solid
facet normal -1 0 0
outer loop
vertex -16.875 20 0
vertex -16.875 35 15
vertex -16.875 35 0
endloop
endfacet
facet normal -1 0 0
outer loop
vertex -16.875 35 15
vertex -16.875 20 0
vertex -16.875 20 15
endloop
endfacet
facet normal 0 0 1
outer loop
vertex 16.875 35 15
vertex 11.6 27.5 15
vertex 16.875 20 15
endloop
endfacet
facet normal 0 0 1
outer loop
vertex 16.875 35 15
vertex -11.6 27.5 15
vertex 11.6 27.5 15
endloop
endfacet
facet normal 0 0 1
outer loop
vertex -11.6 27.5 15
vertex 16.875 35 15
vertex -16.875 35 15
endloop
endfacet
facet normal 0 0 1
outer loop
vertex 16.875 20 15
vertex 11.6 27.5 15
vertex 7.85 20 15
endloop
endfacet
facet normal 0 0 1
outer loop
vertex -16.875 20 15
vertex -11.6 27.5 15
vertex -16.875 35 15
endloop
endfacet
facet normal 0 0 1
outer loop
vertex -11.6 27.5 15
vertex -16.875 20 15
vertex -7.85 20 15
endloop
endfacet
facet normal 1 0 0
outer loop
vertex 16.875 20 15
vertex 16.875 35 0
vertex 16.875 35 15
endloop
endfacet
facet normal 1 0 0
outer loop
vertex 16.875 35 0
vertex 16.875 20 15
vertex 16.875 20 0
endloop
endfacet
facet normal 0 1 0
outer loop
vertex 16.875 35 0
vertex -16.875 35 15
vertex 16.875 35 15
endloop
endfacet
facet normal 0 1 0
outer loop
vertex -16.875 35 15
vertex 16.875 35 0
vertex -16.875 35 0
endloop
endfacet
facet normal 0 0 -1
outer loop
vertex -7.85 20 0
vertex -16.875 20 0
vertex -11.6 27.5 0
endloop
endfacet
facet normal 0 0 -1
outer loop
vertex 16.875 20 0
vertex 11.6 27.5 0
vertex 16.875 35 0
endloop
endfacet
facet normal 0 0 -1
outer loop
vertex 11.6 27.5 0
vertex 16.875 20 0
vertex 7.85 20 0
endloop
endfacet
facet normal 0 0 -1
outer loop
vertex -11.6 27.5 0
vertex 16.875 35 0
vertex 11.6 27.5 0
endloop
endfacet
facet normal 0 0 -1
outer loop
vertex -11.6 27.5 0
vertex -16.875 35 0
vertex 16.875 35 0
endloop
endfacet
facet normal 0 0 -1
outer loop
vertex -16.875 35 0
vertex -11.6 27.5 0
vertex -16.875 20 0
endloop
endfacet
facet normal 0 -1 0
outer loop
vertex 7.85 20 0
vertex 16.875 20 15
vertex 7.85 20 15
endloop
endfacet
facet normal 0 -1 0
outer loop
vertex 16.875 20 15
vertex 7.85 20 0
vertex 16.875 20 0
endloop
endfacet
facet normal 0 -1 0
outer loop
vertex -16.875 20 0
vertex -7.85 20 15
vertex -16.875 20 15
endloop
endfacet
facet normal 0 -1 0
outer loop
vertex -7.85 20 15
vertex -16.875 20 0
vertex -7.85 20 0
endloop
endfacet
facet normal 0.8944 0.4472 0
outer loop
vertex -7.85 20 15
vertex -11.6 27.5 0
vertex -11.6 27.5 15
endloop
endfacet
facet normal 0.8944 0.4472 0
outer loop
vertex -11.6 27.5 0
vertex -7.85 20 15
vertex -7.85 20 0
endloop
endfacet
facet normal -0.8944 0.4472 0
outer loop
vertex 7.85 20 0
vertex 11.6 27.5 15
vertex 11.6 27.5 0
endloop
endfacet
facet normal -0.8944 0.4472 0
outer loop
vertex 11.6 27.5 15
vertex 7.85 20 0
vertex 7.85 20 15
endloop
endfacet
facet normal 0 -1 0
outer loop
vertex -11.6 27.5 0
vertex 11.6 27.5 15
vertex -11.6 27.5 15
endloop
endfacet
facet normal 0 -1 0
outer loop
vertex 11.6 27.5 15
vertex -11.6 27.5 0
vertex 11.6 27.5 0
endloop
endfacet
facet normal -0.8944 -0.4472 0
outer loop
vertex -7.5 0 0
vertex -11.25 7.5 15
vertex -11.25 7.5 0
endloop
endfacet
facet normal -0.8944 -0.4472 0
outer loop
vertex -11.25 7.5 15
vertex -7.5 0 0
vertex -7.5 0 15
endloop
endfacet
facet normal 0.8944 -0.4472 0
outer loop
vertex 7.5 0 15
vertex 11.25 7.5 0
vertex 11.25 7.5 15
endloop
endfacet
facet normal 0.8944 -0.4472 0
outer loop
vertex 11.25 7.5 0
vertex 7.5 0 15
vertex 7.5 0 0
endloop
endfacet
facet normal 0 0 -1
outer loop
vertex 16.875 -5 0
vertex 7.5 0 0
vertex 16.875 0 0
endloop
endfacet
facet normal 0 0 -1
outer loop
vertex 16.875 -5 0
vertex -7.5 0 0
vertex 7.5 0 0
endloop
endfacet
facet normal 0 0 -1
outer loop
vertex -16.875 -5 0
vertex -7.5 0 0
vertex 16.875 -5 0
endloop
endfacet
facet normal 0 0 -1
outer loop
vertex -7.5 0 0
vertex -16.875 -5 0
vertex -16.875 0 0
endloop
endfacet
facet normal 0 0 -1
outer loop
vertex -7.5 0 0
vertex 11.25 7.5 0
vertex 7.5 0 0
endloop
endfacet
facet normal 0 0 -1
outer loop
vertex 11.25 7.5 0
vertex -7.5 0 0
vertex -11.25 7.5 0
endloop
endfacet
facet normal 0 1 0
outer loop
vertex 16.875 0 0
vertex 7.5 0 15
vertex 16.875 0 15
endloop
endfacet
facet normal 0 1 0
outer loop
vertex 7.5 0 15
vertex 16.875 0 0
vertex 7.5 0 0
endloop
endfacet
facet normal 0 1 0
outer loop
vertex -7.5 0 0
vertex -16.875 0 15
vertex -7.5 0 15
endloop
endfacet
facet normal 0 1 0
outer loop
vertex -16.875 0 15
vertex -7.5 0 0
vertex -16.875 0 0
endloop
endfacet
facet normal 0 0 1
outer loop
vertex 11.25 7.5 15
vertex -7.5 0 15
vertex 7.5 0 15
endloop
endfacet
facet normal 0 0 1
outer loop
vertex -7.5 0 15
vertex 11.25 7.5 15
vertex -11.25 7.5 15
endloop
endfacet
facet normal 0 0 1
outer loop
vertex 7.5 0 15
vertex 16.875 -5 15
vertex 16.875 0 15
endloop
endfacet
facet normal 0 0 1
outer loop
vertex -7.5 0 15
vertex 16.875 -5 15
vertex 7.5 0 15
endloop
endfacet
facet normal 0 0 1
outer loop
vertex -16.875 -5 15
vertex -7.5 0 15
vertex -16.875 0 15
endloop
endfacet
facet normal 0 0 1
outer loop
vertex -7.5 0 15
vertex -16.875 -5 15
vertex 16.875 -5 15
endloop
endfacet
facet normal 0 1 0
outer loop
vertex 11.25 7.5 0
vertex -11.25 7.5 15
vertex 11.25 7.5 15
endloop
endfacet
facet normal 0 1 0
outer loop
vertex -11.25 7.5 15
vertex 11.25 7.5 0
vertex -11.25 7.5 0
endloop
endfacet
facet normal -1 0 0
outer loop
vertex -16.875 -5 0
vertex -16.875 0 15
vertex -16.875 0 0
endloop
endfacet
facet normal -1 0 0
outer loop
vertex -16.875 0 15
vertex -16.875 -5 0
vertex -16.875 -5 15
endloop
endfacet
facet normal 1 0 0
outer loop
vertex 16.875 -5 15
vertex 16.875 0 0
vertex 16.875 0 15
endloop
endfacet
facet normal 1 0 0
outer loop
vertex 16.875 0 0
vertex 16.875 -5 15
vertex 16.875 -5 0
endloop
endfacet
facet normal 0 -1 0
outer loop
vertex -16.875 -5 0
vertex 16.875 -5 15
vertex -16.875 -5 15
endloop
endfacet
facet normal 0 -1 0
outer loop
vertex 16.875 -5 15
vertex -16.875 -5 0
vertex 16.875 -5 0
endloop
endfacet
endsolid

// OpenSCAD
// project dovetail defaults are used. change at risk
default_min_width = 15;
default_max_width = default_min_width*1.5;
default_depth = 15/2;
default_clearance = 0.7;
default_height = 15;

// test examples
dovetail();
translate([0,-5/2,default_height/2])
        cube([default_max_width*1.5, 5, default_height], center=true);
translate([0,20,0]) 
    difference() 
    {
        translate([0,default_min_width/2,default_height/2])
        cube([default_max_width*1.5,
            default_min_width,default_height], center=true);
        dovetail(clearance=true);
    }
// end test
module dovetail(max_width=default_max_width, min_width=default_min_width, 
                depth=default_depth, height=default_height, clearance=false) {
	linear_extrude(height=height, convexity=2)
		dovetail_2d(max_width +
                   (clearance ? default_clearance:0),
                   min_width+
                   (clearance ? default_clearance:0),
                    depth);
}

module dovetail_2d(max_width=11, min_width=5, depth=5) {
	angle=atan((max_width/2-min_width/2)/depth);
	echo("angle: ", angle);
	polygon(paths=[[0,1,2,3,0]], points=[[-min_width/2,0], [-max_width/2,depth], 
        [max_width/2, depth], [min_width/2,0]]);
}
